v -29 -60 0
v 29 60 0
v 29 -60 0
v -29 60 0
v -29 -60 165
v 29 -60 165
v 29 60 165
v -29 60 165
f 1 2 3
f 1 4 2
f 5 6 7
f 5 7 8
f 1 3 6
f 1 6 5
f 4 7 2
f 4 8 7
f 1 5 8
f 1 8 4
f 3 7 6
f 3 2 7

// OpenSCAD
// Gemini 4 Argon Parametric OpenSCAD — PRT-03: Right Y-Axis Portal Upright & Idler Pulley Tower
$fn = 64;
translate([-29.00, -60.00, 0])
  cube([58, 120, 165]);
